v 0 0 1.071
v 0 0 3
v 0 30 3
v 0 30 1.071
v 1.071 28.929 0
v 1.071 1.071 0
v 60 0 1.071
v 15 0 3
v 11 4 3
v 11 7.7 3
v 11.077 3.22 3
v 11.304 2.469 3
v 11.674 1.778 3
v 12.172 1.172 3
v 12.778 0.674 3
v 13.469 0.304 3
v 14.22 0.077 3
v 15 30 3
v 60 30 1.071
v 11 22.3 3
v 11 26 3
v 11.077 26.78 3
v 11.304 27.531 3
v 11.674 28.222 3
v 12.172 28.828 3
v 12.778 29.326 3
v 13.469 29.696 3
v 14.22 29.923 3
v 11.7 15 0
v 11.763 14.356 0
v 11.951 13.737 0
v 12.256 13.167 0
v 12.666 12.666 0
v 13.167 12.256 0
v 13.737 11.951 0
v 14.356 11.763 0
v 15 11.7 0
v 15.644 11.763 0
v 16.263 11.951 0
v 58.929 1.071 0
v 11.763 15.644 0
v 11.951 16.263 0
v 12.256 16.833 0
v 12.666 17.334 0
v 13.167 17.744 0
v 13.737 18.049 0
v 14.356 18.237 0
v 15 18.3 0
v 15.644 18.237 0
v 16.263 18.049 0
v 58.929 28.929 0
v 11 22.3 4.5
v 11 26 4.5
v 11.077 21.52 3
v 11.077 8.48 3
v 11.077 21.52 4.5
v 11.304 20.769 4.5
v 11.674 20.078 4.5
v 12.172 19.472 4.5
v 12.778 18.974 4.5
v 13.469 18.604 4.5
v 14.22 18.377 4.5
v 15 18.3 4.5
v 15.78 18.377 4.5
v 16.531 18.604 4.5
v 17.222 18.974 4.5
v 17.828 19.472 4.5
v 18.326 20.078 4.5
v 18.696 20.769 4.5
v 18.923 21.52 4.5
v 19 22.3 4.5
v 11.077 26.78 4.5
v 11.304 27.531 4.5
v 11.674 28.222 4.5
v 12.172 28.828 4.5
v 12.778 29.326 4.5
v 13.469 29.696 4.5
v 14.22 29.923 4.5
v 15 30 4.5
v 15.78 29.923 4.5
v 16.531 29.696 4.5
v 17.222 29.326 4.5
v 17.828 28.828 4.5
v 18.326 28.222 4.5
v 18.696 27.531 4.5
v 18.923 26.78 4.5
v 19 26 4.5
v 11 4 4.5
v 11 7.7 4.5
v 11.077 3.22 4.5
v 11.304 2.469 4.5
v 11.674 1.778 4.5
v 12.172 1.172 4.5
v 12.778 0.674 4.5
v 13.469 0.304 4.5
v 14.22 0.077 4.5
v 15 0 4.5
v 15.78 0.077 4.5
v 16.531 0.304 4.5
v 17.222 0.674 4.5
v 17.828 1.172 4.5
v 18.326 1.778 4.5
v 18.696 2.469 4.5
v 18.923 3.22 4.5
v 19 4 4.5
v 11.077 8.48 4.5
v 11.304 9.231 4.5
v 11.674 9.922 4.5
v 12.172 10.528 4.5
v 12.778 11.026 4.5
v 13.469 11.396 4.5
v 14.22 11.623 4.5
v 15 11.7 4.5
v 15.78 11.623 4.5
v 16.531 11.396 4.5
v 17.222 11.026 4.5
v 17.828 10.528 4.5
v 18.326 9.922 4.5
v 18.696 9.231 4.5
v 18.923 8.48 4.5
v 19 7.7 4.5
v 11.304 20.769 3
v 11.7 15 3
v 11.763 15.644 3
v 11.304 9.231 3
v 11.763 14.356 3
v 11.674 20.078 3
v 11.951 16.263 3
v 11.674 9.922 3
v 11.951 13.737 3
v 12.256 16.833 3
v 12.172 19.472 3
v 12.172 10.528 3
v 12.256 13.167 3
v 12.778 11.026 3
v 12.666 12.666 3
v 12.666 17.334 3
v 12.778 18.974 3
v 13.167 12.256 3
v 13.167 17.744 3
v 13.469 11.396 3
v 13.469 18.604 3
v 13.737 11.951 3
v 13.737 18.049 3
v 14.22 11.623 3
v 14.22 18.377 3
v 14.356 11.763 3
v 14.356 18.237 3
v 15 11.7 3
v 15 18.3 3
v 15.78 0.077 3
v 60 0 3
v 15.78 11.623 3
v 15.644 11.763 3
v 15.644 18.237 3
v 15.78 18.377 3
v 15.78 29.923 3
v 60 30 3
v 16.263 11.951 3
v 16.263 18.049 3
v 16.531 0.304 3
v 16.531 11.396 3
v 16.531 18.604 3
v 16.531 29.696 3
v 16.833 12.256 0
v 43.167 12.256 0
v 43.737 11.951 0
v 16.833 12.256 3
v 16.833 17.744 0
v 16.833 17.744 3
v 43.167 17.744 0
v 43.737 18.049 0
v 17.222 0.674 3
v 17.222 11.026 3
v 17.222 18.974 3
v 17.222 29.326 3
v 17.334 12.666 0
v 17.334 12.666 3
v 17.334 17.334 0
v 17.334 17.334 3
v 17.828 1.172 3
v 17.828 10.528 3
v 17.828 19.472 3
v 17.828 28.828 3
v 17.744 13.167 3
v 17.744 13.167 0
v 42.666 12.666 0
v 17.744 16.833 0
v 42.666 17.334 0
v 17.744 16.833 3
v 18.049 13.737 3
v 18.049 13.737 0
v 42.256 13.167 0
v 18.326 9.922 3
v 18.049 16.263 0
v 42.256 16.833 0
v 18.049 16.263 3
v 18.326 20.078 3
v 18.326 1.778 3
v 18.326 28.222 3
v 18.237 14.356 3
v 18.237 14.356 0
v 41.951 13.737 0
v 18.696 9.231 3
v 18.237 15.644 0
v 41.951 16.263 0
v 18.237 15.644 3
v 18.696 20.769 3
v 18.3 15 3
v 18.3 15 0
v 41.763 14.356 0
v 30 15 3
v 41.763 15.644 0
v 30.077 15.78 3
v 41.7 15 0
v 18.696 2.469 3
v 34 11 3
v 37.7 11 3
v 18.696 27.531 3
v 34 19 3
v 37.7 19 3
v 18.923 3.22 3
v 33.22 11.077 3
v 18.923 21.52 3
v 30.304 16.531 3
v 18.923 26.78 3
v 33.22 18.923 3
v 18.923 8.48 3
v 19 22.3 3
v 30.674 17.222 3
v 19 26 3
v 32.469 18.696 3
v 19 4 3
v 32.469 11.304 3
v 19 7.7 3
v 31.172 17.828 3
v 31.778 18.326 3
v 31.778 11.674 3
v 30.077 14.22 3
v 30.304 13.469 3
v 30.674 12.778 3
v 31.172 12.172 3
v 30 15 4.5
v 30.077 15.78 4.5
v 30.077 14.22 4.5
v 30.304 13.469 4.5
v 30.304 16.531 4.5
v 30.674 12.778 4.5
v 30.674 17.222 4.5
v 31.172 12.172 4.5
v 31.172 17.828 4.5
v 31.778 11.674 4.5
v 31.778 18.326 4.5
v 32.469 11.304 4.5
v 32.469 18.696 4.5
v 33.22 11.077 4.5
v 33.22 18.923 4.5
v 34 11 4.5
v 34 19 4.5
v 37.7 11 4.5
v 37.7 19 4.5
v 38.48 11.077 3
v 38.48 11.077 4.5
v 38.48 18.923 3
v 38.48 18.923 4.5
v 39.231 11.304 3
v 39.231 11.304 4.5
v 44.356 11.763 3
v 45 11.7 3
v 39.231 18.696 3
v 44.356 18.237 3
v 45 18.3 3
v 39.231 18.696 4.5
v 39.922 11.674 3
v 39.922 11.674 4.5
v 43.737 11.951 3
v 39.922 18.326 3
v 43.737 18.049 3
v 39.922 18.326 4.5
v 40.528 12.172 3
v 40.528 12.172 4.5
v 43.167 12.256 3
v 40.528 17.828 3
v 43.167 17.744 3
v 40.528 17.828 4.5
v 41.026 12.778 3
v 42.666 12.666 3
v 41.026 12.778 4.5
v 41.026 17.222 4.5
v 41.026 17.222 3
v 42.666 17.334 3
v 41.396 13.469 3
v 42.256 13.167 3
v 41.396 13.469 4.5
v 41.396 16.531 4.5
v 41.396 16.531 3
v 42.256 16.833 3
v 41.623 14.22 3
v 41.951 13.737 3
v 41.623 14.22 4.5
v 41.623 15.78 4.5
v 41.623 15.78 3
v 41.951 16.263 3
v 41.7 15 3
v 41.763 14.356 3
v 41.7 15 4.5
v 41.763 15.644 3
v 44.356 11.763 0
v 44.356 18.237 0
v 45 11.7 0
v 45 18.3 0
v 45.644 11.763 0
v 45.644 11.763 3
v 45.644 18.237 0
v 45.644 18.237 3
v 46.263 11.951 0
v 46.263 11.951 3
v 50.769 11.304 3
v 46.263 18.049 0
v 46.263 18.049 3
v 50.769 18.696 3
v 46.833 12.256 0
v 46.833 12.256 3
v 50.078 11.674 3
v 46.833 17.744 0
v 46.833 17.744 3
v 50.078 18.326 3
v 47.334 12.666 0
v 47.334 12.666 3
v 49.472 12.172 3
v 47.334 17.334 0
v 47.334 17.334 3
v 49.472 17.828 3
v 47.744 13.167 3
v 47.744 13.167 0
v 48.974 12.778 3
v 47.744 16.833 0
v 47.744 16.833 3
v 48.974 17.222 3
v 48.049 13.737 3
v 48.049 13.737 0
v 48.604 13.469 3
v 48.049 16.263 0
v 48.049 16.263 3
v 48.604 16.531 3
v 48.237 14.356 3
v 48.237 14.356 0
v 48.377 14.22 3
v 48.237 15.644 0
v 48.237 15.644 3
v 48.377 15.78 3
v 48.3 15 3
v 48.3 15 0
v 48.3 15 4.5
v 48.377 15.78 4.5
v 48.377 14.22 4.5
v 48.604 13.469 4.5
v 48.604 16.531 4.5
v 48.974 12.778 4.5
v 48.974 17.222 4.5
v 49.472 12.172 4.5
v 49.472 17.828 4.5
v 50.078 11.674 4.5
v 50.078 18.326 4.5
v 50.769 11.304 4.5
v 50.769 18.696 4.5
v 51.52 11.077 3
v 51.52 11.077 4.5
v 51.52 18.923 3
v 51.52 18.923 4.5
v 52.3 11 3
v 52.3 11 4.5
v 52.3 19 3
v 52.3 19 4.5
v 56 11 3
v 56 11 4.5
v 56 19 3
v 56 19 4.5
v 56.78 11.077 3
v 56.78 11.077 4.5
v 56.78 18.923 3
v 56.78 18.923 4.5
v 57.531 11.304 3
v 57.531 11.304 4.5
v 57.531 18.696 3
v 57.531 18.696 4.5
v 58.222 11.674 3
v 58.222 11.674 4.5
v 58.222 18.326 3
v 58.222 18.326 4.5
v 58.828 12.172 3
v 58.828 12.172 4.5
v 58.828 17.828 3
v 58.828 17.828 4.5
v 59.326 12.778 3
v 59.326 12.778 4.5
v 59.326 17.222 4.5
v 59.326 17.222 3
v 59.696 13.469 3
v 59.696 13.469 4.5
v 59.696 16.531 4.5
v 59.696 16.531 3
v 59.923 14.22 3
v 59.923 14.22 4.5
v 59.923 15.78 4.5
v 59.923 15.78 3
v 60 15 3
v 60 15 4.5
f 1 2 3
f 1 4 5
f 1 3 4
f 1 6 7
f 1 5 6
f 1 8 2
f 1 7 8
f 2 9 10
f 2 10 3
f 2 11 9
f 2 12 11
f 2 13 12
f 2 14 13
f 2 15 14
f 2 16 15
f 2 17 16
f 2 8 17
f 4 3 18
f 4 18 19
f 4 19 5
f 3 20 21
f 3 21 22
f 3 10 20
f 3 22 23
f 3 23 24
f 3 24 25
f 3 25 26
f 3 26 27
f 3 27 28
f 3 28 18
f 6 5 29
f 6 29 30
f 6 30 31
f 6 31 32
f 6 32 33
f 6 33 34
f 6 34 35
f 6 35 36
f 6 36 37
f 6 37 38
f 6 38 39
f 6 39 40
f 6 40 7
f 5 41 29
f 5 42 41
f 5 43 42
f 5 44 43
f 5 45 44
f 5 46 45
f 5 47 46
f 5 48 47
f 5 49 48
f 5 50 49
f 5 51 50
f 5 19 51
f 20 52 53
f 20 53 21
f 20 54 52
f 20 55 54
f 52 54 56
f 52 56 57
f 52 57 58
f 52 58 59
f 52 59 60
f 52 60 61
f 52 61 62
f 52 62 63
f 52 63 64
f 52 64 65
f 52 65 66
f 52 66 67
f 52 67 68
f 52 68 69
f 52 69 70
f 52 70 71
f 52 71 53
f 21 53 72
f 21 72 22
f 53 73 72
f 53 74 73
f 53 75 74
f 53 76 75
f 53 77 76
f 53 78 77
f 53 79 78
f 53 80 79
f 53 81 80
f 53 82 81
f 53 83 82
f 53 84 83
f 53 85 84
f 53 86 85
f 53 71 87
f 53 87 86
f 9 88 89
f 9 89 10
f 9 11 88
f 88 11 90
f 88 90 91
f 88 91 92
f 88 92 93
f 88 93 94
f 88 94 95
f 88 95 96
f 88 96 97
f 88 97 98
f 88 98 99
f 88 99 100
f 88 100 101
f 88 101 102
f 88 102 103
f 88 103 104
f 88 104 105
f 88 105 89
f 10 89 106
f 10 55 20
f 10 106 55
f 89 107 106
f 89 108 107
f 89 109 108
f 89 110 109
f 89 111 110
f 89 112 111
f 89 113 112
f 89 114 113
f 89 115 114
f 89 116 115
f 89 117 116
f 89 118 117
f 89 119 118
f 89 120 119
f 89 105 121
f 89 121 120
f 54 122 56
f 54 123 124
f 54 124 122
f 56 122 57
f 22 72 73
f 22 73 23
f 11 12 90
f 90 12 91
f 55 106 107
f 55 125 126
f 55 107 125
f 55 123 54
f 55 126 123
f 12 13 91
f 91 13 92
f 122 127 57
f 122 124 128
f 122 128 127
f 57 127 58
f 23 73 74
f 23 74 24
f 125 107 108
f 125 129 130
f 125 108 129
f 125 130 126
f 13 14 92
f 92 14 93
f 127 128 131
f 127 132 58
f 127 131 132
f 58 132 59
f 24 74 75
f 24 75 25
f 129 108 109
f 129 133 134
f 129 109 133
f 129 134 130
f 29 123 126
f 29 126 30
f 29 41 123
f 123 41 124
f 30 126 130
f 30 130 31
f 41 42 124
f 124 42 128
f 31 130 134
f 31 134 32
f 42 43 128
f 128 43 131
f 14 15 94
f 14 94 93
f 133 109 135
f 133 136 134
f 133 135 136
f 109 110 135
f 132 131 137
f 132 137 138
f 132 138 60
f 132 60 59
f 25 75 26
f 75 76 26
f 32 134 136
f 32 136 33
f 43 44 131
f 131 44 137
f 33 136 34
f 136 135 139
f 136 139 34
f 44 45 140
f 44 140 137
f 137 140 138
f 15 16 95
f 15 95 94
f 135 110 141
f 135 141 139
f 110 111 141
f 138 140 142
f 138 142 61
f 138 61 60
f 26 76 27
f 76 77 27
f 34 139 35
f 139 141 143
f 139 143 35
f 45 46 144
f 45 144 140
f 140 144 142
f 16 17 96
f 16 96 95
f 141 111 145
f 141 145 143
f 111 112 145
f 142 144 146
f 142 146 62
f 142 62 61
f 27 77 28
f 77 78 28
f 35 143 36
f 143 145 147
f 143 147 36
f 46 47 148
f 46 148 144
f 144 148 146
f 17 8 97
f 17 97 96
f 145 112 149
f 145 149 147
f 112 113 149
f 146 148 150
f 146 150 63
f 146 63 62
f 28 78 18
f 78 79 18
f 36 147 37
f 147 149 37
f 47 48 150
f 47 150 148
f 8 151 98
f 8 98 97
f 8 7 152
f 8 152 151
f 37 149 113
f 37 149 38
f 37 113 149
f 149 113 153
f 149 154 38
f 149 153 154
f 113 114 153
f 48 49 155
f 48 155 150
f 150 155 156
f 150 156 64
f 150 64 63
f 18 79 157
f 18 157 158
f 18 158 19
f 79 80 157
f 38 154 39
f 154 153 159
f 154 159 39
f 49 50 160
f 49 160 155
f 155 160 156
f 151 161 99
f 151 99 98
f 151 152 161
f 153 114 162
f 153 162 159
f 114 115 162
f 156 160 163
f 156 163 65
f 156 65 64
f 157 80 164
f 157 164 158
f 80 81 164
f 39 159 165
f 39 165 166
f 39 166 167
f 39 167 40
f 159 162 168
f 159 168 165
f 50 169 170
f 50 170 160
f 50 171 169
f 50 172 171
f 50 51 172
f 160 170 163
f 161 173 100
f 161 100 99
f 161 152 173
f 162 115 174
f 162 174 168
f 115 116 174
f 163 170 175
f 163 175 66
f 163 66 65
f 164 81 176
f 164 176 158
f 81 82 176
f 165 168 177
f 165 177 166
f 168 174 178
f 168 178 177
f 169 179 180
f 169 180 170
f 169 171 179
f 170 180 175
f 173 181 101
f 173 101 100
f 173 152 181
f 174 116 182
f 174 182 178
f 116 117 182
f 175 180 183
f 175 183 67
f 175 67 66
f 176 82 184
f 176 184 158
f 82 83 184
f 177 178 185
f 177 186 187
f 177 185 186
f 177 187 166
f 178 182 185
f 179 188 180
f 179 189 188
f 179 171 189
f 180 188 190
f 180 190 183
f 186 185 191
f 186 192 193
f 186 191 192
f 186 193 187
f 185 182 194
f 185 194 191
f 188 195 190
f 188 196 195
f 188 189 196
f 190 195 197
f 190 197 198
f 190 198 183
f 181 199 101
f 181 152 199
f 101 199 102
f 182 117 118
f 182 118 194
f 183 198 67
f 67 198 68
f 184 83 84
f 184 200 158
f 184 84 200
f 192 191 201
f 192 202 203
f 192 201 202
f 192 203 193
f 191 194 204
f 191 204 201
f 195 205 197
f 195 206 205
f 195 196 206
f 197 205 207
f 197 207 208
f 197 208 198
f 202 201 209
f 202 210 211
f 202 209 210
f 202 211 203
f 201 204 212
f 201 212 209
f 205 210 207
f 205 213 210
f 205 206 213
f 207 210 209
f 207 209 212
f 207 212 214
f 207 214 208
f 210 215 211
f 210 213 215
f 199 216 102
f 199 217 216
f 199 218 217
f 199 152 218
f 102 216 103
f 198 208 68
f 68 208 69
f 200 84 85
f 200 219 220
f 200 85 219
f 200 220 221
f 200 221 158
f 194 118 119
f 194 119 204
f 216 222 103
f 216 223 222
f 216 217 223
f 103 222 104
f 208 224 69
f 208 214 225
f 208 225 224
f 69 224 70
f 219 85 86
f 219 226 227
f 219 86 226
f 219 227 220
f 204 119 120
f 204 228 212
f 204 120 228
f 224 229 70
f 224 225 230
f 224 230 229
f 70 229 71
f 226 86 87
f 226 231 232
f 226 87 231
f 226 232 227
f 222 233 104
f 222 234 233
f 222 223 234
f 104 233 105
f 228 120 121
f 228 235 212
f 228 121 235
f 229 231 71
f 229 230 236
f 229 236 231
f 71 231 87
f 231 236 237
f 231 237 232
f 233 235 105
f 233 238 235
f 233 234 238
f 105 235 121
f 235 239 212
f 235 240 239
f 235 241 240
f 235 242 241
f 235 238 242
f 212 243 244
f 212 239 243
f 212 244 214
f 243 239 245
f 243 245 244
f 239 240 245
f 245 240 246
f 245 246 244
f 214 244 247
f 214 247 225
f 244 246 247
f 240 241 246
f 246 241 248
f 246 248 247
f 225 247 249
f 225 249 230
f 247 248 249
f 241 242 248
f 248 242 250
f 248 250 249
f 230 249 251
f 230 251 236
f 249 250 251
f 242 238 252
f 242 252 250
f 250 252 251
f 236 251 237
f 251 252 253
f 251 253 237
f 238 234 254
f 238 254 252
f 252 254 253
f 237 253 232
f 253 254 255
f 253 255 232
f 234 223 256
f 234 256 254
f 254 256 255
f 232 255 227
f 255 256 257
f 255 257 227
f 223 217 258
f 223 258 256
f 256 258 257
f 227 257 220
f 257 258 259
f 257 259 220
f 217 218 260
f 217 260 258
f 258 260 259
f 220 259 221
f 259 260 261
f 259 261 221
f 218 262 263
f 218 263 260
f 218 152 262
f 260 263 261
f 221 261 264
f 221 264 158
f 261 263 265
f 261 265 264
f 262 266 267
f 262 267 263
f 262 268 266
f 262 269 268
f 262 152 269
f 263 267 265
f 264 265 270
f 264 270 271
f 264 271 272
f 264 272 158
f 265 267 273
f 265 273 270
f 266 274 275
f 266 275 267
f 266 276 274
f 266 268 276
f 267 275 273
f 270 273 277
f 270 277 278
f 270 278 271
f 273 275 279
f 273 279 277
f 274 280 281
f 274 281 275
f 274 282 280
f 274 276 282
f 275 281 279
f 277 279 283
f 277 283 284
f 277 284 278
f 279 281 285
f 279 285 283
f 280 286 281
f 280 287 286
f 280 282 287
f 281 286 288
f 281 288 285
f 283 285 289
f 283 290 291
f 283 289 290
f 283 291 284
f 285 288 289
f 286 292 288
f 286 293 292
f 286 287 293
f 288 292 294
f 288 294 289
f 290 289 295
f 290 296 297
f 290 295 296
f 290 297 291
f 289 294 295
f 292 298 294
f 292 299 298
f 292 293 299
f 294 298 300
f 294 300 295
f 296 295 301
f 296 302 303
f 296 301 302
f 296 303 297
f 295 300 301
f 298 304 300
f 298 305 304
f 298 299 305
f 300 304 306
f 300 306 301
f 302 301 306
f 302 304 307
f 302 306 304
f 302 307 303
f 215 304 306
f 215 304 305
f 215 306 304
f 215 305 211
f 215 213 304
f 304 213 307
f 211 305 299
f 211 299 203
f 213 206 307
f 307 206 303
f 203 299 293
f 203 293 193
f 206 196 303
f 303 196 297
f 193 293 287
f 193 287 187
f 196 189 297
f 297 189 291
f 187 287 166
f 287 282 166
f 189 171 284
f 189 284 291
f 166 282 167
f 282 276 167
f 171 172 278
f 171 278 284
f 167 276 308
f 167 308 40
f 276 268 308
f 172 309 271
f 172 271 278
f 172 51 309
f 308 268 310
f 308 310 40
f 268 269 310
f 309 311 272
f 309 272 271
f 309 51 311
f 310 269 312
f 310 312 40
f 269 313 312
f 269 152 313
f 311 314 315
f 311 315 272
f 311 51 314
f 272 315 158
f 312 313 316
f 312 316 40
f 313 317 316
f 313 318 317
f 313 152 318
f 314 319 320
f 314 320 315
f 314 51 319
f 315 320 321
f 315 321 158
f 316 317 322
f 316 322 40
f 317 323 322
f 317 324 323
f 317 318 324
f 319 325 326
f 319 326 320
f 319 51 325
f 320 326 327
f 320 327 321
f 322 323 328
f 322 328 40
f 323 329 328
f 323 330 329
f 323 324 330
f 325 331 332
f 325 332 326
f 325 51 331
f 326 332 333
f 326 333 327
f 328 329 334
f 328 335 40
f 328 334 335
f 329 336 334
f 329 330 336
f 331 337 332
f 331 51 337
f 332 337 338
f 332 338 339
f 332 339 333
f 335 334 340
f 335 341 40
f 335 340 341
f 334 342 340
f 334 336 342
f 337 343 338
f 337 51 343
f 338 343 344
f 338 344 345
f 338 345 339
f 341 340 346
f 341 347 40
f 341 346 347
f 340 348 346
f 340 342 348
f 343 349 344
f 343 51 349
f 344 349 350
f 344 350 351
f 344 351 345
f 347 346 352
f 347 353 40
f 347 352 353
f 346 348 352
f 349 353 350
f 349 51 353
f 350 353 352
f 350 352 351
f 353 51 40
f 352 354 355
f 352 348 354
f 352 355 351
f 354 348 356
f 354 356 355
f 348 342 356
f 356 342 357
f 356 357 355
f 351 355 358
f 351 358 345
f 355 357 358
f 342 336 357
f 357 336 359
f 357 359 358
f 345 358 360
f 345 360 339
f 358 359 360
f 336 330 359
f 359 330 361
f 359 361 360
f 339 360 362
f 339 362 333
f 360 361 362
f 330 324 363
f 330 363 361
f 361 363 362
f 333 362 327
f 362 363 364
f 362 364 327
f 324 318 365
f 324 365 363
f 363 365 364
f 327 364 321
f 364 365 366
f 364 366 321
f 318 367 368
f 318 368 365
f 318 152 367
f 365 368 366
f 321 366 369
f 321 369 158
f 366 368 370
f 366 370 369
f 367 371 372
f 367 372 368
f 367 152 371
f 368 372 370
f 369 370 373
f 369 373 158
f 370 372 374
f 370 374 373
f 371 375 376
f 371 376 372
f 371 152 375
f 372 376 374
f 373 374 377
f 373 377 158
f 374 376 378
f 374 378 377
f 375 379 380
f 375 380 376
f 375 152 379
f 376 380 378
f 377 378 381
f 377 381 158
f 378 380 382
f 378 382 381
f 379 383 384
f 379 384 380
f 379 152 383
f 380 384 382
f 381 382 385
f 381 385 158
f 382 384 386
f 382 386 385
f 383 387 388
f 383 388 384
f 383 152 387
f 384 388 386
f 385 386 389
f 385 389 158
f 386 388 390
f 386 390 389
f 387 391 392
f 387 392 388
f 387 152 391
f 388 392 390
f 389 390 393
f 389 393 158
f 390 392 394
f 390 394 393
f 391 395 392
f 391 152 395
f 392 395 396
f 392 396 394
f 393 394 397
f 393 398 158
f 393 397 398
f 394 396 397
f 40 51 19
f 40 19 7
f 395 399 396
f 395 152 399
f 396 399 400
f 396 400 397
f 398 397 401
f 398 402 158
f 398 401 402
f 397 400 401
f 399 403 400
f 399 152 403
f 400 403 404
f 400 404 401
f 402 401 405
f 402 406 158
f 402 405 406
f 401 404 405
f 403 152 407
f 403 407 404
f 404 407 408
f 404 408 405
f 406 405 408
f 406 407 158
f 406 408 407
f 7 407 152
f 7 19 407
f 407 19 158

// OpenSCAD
// file: ../configuration.scad
// Layer high for the printing [mm]
layer_height = 0.20; //Slic3r->Print Settings->Layers and perimeters->Layer height

// Spare for the screws heads [mm]
spare = 0.75;
// M6 screw diameter [mm]
M6_head_diameter = 13.6+spare;
//M6_head_diameter = 10.6+spare;
//M6_head_diameter = 12+spare;

// M6 head high (for hiding it) [mm]
//M6_head_height = 4;
M6_head_height = 3.6;
//M6_head_height = 4.5;

// Screws and rods diameters
M8_smooth_rod_diameter = 8.3;
M8_smooth_rod_diameter_catch = 8.4;
// Prumer 8mm tyce
rod_8mm_d = 8.2; //pro dil z-top
M6_diameter = 6.6;
M6_dia=M6_diameter; //pro dil z-top
M6_diamater_horizontal = 6.5;
M3_diameter = 3.7;
M3_diameter_horizontal = 3.5;

//matice trapézové tyče
TRAP_diameter_externa=22; //průmer vnější 


// Nuts diameters
M3_nut_diameter = 7.0;
M3_nut_diameter_horizontal = 6.7;

// ALU profile parameters
ALU_cut_width = 7.9;
ALU_cut_width_horizontal = 7.7;

// Sirka matky do profilu (pokud neni pouzita, tak 0)
//profile_nut_width = 9.5;
profile_nut_width = 0; //pro z-top

// Motors length/depth (for axes Z and Y)
//SX17-1003LQFE (recommended for the Z axis)
motor_length = 29.5;
//SX17-1003 (recommended for the Z axis)
//motor_length = 34;
//SX17-1005
//motor_length = 40;
//SX17-0905 - this motor is too high - the Z end stop holder has to be adjusted
//motor_length = 48;

// Extrusion width [mm]
extrusion_width = 0.66; //Slic3r->Print Settings->Advanced->Default extrusion width

/// Belt type ******************************************************

// GT2 
/*belt_tooth_distance = 2;
belt_tooth_ratio = 0.5;
belt_tooth_height = 1.4;
belt_thickness = 2.3;
*/

// T2.5
belt_tooth_distance = 2.5;
belt_tooth_ratio = 0.5;


// Tloustka rohovych spojek
// 5 mm => sroub M6x14 s podlozkou
// 3 mm => sroub M6x12 s podlozkou
coupler_thickness = 3;
// main file
// RebeliX
//
// corner coupler
// GNU GPL v3
// Martin Neruda <neruda@reprap4u.cz>
// http://www.reprap4u.cz
// Inspired by Rebel II

include <../configuration.scad>


module drazka()
{
  distance = M6_dia >= profile_nut_width ? M6_dia : profile_nut_width;
  
  translate([-30/2+4,0,0]) cylinder(r=4,h=coupler_thickness+1.5,$fn=32,center=true);
  translate([-distance/2-4,0,0]) cylinder(r=4,h=coupler_thickness+1.5,$fn=32,center=true);
  translate([-distance/4 - 7.5,0,0]) cube([7 - distance/2,8,coupler_thickness+1.5],center=true);
	
  translate([30/2-4,0,0])cylinder(r=4,h=coupler_thickness+1.5,$fn=32,center=true);
  translate([distance/2+4,0,0])cylinder(r=4,h=coupler_thickness+1.5,$fn=32,center=true);
  translate([distance/4 + 7.5,0,0]) cube([7 - distance/2,8,coupler_thickness+1.5],center=true);
}

module corner_coupler()
{
  difference()
  {
	union()
	{
	  cube([60,30,coupler_thickness]);
	  translate([15,30/2,(coupler_thickness+1.5)/2]) rotate([0,0,90]) drazka();
	  translate([45,30/2,(coupler_thickness+1.5)/2]) drazka();
	}
		
	// Otvory pro srouby
	translate([15,30/2,0])cylinder(h=20,r=M6_dia/2,$fn=32,center=true);
	translate([45,30/2,0])cylinder(h=20,r=M6_dia/2,$fn=32,center=true);
		
	// Zalomene hrany
	translate([-1,-0.1,-5]) rotate([0,-45,0]) cube([5,40,5]);
	translate([61,-0.1,-5]) rotate([0,-45,0]) cube([5,40,5]);
	translate([-0.1,-1,-5]) rotate([45,0,0]) cube([70,5,5]);
	translate([-0.1,31,-5]) rotate([45,0,0]) cube([70,5,5]);
  }
}

corner_coupler();
